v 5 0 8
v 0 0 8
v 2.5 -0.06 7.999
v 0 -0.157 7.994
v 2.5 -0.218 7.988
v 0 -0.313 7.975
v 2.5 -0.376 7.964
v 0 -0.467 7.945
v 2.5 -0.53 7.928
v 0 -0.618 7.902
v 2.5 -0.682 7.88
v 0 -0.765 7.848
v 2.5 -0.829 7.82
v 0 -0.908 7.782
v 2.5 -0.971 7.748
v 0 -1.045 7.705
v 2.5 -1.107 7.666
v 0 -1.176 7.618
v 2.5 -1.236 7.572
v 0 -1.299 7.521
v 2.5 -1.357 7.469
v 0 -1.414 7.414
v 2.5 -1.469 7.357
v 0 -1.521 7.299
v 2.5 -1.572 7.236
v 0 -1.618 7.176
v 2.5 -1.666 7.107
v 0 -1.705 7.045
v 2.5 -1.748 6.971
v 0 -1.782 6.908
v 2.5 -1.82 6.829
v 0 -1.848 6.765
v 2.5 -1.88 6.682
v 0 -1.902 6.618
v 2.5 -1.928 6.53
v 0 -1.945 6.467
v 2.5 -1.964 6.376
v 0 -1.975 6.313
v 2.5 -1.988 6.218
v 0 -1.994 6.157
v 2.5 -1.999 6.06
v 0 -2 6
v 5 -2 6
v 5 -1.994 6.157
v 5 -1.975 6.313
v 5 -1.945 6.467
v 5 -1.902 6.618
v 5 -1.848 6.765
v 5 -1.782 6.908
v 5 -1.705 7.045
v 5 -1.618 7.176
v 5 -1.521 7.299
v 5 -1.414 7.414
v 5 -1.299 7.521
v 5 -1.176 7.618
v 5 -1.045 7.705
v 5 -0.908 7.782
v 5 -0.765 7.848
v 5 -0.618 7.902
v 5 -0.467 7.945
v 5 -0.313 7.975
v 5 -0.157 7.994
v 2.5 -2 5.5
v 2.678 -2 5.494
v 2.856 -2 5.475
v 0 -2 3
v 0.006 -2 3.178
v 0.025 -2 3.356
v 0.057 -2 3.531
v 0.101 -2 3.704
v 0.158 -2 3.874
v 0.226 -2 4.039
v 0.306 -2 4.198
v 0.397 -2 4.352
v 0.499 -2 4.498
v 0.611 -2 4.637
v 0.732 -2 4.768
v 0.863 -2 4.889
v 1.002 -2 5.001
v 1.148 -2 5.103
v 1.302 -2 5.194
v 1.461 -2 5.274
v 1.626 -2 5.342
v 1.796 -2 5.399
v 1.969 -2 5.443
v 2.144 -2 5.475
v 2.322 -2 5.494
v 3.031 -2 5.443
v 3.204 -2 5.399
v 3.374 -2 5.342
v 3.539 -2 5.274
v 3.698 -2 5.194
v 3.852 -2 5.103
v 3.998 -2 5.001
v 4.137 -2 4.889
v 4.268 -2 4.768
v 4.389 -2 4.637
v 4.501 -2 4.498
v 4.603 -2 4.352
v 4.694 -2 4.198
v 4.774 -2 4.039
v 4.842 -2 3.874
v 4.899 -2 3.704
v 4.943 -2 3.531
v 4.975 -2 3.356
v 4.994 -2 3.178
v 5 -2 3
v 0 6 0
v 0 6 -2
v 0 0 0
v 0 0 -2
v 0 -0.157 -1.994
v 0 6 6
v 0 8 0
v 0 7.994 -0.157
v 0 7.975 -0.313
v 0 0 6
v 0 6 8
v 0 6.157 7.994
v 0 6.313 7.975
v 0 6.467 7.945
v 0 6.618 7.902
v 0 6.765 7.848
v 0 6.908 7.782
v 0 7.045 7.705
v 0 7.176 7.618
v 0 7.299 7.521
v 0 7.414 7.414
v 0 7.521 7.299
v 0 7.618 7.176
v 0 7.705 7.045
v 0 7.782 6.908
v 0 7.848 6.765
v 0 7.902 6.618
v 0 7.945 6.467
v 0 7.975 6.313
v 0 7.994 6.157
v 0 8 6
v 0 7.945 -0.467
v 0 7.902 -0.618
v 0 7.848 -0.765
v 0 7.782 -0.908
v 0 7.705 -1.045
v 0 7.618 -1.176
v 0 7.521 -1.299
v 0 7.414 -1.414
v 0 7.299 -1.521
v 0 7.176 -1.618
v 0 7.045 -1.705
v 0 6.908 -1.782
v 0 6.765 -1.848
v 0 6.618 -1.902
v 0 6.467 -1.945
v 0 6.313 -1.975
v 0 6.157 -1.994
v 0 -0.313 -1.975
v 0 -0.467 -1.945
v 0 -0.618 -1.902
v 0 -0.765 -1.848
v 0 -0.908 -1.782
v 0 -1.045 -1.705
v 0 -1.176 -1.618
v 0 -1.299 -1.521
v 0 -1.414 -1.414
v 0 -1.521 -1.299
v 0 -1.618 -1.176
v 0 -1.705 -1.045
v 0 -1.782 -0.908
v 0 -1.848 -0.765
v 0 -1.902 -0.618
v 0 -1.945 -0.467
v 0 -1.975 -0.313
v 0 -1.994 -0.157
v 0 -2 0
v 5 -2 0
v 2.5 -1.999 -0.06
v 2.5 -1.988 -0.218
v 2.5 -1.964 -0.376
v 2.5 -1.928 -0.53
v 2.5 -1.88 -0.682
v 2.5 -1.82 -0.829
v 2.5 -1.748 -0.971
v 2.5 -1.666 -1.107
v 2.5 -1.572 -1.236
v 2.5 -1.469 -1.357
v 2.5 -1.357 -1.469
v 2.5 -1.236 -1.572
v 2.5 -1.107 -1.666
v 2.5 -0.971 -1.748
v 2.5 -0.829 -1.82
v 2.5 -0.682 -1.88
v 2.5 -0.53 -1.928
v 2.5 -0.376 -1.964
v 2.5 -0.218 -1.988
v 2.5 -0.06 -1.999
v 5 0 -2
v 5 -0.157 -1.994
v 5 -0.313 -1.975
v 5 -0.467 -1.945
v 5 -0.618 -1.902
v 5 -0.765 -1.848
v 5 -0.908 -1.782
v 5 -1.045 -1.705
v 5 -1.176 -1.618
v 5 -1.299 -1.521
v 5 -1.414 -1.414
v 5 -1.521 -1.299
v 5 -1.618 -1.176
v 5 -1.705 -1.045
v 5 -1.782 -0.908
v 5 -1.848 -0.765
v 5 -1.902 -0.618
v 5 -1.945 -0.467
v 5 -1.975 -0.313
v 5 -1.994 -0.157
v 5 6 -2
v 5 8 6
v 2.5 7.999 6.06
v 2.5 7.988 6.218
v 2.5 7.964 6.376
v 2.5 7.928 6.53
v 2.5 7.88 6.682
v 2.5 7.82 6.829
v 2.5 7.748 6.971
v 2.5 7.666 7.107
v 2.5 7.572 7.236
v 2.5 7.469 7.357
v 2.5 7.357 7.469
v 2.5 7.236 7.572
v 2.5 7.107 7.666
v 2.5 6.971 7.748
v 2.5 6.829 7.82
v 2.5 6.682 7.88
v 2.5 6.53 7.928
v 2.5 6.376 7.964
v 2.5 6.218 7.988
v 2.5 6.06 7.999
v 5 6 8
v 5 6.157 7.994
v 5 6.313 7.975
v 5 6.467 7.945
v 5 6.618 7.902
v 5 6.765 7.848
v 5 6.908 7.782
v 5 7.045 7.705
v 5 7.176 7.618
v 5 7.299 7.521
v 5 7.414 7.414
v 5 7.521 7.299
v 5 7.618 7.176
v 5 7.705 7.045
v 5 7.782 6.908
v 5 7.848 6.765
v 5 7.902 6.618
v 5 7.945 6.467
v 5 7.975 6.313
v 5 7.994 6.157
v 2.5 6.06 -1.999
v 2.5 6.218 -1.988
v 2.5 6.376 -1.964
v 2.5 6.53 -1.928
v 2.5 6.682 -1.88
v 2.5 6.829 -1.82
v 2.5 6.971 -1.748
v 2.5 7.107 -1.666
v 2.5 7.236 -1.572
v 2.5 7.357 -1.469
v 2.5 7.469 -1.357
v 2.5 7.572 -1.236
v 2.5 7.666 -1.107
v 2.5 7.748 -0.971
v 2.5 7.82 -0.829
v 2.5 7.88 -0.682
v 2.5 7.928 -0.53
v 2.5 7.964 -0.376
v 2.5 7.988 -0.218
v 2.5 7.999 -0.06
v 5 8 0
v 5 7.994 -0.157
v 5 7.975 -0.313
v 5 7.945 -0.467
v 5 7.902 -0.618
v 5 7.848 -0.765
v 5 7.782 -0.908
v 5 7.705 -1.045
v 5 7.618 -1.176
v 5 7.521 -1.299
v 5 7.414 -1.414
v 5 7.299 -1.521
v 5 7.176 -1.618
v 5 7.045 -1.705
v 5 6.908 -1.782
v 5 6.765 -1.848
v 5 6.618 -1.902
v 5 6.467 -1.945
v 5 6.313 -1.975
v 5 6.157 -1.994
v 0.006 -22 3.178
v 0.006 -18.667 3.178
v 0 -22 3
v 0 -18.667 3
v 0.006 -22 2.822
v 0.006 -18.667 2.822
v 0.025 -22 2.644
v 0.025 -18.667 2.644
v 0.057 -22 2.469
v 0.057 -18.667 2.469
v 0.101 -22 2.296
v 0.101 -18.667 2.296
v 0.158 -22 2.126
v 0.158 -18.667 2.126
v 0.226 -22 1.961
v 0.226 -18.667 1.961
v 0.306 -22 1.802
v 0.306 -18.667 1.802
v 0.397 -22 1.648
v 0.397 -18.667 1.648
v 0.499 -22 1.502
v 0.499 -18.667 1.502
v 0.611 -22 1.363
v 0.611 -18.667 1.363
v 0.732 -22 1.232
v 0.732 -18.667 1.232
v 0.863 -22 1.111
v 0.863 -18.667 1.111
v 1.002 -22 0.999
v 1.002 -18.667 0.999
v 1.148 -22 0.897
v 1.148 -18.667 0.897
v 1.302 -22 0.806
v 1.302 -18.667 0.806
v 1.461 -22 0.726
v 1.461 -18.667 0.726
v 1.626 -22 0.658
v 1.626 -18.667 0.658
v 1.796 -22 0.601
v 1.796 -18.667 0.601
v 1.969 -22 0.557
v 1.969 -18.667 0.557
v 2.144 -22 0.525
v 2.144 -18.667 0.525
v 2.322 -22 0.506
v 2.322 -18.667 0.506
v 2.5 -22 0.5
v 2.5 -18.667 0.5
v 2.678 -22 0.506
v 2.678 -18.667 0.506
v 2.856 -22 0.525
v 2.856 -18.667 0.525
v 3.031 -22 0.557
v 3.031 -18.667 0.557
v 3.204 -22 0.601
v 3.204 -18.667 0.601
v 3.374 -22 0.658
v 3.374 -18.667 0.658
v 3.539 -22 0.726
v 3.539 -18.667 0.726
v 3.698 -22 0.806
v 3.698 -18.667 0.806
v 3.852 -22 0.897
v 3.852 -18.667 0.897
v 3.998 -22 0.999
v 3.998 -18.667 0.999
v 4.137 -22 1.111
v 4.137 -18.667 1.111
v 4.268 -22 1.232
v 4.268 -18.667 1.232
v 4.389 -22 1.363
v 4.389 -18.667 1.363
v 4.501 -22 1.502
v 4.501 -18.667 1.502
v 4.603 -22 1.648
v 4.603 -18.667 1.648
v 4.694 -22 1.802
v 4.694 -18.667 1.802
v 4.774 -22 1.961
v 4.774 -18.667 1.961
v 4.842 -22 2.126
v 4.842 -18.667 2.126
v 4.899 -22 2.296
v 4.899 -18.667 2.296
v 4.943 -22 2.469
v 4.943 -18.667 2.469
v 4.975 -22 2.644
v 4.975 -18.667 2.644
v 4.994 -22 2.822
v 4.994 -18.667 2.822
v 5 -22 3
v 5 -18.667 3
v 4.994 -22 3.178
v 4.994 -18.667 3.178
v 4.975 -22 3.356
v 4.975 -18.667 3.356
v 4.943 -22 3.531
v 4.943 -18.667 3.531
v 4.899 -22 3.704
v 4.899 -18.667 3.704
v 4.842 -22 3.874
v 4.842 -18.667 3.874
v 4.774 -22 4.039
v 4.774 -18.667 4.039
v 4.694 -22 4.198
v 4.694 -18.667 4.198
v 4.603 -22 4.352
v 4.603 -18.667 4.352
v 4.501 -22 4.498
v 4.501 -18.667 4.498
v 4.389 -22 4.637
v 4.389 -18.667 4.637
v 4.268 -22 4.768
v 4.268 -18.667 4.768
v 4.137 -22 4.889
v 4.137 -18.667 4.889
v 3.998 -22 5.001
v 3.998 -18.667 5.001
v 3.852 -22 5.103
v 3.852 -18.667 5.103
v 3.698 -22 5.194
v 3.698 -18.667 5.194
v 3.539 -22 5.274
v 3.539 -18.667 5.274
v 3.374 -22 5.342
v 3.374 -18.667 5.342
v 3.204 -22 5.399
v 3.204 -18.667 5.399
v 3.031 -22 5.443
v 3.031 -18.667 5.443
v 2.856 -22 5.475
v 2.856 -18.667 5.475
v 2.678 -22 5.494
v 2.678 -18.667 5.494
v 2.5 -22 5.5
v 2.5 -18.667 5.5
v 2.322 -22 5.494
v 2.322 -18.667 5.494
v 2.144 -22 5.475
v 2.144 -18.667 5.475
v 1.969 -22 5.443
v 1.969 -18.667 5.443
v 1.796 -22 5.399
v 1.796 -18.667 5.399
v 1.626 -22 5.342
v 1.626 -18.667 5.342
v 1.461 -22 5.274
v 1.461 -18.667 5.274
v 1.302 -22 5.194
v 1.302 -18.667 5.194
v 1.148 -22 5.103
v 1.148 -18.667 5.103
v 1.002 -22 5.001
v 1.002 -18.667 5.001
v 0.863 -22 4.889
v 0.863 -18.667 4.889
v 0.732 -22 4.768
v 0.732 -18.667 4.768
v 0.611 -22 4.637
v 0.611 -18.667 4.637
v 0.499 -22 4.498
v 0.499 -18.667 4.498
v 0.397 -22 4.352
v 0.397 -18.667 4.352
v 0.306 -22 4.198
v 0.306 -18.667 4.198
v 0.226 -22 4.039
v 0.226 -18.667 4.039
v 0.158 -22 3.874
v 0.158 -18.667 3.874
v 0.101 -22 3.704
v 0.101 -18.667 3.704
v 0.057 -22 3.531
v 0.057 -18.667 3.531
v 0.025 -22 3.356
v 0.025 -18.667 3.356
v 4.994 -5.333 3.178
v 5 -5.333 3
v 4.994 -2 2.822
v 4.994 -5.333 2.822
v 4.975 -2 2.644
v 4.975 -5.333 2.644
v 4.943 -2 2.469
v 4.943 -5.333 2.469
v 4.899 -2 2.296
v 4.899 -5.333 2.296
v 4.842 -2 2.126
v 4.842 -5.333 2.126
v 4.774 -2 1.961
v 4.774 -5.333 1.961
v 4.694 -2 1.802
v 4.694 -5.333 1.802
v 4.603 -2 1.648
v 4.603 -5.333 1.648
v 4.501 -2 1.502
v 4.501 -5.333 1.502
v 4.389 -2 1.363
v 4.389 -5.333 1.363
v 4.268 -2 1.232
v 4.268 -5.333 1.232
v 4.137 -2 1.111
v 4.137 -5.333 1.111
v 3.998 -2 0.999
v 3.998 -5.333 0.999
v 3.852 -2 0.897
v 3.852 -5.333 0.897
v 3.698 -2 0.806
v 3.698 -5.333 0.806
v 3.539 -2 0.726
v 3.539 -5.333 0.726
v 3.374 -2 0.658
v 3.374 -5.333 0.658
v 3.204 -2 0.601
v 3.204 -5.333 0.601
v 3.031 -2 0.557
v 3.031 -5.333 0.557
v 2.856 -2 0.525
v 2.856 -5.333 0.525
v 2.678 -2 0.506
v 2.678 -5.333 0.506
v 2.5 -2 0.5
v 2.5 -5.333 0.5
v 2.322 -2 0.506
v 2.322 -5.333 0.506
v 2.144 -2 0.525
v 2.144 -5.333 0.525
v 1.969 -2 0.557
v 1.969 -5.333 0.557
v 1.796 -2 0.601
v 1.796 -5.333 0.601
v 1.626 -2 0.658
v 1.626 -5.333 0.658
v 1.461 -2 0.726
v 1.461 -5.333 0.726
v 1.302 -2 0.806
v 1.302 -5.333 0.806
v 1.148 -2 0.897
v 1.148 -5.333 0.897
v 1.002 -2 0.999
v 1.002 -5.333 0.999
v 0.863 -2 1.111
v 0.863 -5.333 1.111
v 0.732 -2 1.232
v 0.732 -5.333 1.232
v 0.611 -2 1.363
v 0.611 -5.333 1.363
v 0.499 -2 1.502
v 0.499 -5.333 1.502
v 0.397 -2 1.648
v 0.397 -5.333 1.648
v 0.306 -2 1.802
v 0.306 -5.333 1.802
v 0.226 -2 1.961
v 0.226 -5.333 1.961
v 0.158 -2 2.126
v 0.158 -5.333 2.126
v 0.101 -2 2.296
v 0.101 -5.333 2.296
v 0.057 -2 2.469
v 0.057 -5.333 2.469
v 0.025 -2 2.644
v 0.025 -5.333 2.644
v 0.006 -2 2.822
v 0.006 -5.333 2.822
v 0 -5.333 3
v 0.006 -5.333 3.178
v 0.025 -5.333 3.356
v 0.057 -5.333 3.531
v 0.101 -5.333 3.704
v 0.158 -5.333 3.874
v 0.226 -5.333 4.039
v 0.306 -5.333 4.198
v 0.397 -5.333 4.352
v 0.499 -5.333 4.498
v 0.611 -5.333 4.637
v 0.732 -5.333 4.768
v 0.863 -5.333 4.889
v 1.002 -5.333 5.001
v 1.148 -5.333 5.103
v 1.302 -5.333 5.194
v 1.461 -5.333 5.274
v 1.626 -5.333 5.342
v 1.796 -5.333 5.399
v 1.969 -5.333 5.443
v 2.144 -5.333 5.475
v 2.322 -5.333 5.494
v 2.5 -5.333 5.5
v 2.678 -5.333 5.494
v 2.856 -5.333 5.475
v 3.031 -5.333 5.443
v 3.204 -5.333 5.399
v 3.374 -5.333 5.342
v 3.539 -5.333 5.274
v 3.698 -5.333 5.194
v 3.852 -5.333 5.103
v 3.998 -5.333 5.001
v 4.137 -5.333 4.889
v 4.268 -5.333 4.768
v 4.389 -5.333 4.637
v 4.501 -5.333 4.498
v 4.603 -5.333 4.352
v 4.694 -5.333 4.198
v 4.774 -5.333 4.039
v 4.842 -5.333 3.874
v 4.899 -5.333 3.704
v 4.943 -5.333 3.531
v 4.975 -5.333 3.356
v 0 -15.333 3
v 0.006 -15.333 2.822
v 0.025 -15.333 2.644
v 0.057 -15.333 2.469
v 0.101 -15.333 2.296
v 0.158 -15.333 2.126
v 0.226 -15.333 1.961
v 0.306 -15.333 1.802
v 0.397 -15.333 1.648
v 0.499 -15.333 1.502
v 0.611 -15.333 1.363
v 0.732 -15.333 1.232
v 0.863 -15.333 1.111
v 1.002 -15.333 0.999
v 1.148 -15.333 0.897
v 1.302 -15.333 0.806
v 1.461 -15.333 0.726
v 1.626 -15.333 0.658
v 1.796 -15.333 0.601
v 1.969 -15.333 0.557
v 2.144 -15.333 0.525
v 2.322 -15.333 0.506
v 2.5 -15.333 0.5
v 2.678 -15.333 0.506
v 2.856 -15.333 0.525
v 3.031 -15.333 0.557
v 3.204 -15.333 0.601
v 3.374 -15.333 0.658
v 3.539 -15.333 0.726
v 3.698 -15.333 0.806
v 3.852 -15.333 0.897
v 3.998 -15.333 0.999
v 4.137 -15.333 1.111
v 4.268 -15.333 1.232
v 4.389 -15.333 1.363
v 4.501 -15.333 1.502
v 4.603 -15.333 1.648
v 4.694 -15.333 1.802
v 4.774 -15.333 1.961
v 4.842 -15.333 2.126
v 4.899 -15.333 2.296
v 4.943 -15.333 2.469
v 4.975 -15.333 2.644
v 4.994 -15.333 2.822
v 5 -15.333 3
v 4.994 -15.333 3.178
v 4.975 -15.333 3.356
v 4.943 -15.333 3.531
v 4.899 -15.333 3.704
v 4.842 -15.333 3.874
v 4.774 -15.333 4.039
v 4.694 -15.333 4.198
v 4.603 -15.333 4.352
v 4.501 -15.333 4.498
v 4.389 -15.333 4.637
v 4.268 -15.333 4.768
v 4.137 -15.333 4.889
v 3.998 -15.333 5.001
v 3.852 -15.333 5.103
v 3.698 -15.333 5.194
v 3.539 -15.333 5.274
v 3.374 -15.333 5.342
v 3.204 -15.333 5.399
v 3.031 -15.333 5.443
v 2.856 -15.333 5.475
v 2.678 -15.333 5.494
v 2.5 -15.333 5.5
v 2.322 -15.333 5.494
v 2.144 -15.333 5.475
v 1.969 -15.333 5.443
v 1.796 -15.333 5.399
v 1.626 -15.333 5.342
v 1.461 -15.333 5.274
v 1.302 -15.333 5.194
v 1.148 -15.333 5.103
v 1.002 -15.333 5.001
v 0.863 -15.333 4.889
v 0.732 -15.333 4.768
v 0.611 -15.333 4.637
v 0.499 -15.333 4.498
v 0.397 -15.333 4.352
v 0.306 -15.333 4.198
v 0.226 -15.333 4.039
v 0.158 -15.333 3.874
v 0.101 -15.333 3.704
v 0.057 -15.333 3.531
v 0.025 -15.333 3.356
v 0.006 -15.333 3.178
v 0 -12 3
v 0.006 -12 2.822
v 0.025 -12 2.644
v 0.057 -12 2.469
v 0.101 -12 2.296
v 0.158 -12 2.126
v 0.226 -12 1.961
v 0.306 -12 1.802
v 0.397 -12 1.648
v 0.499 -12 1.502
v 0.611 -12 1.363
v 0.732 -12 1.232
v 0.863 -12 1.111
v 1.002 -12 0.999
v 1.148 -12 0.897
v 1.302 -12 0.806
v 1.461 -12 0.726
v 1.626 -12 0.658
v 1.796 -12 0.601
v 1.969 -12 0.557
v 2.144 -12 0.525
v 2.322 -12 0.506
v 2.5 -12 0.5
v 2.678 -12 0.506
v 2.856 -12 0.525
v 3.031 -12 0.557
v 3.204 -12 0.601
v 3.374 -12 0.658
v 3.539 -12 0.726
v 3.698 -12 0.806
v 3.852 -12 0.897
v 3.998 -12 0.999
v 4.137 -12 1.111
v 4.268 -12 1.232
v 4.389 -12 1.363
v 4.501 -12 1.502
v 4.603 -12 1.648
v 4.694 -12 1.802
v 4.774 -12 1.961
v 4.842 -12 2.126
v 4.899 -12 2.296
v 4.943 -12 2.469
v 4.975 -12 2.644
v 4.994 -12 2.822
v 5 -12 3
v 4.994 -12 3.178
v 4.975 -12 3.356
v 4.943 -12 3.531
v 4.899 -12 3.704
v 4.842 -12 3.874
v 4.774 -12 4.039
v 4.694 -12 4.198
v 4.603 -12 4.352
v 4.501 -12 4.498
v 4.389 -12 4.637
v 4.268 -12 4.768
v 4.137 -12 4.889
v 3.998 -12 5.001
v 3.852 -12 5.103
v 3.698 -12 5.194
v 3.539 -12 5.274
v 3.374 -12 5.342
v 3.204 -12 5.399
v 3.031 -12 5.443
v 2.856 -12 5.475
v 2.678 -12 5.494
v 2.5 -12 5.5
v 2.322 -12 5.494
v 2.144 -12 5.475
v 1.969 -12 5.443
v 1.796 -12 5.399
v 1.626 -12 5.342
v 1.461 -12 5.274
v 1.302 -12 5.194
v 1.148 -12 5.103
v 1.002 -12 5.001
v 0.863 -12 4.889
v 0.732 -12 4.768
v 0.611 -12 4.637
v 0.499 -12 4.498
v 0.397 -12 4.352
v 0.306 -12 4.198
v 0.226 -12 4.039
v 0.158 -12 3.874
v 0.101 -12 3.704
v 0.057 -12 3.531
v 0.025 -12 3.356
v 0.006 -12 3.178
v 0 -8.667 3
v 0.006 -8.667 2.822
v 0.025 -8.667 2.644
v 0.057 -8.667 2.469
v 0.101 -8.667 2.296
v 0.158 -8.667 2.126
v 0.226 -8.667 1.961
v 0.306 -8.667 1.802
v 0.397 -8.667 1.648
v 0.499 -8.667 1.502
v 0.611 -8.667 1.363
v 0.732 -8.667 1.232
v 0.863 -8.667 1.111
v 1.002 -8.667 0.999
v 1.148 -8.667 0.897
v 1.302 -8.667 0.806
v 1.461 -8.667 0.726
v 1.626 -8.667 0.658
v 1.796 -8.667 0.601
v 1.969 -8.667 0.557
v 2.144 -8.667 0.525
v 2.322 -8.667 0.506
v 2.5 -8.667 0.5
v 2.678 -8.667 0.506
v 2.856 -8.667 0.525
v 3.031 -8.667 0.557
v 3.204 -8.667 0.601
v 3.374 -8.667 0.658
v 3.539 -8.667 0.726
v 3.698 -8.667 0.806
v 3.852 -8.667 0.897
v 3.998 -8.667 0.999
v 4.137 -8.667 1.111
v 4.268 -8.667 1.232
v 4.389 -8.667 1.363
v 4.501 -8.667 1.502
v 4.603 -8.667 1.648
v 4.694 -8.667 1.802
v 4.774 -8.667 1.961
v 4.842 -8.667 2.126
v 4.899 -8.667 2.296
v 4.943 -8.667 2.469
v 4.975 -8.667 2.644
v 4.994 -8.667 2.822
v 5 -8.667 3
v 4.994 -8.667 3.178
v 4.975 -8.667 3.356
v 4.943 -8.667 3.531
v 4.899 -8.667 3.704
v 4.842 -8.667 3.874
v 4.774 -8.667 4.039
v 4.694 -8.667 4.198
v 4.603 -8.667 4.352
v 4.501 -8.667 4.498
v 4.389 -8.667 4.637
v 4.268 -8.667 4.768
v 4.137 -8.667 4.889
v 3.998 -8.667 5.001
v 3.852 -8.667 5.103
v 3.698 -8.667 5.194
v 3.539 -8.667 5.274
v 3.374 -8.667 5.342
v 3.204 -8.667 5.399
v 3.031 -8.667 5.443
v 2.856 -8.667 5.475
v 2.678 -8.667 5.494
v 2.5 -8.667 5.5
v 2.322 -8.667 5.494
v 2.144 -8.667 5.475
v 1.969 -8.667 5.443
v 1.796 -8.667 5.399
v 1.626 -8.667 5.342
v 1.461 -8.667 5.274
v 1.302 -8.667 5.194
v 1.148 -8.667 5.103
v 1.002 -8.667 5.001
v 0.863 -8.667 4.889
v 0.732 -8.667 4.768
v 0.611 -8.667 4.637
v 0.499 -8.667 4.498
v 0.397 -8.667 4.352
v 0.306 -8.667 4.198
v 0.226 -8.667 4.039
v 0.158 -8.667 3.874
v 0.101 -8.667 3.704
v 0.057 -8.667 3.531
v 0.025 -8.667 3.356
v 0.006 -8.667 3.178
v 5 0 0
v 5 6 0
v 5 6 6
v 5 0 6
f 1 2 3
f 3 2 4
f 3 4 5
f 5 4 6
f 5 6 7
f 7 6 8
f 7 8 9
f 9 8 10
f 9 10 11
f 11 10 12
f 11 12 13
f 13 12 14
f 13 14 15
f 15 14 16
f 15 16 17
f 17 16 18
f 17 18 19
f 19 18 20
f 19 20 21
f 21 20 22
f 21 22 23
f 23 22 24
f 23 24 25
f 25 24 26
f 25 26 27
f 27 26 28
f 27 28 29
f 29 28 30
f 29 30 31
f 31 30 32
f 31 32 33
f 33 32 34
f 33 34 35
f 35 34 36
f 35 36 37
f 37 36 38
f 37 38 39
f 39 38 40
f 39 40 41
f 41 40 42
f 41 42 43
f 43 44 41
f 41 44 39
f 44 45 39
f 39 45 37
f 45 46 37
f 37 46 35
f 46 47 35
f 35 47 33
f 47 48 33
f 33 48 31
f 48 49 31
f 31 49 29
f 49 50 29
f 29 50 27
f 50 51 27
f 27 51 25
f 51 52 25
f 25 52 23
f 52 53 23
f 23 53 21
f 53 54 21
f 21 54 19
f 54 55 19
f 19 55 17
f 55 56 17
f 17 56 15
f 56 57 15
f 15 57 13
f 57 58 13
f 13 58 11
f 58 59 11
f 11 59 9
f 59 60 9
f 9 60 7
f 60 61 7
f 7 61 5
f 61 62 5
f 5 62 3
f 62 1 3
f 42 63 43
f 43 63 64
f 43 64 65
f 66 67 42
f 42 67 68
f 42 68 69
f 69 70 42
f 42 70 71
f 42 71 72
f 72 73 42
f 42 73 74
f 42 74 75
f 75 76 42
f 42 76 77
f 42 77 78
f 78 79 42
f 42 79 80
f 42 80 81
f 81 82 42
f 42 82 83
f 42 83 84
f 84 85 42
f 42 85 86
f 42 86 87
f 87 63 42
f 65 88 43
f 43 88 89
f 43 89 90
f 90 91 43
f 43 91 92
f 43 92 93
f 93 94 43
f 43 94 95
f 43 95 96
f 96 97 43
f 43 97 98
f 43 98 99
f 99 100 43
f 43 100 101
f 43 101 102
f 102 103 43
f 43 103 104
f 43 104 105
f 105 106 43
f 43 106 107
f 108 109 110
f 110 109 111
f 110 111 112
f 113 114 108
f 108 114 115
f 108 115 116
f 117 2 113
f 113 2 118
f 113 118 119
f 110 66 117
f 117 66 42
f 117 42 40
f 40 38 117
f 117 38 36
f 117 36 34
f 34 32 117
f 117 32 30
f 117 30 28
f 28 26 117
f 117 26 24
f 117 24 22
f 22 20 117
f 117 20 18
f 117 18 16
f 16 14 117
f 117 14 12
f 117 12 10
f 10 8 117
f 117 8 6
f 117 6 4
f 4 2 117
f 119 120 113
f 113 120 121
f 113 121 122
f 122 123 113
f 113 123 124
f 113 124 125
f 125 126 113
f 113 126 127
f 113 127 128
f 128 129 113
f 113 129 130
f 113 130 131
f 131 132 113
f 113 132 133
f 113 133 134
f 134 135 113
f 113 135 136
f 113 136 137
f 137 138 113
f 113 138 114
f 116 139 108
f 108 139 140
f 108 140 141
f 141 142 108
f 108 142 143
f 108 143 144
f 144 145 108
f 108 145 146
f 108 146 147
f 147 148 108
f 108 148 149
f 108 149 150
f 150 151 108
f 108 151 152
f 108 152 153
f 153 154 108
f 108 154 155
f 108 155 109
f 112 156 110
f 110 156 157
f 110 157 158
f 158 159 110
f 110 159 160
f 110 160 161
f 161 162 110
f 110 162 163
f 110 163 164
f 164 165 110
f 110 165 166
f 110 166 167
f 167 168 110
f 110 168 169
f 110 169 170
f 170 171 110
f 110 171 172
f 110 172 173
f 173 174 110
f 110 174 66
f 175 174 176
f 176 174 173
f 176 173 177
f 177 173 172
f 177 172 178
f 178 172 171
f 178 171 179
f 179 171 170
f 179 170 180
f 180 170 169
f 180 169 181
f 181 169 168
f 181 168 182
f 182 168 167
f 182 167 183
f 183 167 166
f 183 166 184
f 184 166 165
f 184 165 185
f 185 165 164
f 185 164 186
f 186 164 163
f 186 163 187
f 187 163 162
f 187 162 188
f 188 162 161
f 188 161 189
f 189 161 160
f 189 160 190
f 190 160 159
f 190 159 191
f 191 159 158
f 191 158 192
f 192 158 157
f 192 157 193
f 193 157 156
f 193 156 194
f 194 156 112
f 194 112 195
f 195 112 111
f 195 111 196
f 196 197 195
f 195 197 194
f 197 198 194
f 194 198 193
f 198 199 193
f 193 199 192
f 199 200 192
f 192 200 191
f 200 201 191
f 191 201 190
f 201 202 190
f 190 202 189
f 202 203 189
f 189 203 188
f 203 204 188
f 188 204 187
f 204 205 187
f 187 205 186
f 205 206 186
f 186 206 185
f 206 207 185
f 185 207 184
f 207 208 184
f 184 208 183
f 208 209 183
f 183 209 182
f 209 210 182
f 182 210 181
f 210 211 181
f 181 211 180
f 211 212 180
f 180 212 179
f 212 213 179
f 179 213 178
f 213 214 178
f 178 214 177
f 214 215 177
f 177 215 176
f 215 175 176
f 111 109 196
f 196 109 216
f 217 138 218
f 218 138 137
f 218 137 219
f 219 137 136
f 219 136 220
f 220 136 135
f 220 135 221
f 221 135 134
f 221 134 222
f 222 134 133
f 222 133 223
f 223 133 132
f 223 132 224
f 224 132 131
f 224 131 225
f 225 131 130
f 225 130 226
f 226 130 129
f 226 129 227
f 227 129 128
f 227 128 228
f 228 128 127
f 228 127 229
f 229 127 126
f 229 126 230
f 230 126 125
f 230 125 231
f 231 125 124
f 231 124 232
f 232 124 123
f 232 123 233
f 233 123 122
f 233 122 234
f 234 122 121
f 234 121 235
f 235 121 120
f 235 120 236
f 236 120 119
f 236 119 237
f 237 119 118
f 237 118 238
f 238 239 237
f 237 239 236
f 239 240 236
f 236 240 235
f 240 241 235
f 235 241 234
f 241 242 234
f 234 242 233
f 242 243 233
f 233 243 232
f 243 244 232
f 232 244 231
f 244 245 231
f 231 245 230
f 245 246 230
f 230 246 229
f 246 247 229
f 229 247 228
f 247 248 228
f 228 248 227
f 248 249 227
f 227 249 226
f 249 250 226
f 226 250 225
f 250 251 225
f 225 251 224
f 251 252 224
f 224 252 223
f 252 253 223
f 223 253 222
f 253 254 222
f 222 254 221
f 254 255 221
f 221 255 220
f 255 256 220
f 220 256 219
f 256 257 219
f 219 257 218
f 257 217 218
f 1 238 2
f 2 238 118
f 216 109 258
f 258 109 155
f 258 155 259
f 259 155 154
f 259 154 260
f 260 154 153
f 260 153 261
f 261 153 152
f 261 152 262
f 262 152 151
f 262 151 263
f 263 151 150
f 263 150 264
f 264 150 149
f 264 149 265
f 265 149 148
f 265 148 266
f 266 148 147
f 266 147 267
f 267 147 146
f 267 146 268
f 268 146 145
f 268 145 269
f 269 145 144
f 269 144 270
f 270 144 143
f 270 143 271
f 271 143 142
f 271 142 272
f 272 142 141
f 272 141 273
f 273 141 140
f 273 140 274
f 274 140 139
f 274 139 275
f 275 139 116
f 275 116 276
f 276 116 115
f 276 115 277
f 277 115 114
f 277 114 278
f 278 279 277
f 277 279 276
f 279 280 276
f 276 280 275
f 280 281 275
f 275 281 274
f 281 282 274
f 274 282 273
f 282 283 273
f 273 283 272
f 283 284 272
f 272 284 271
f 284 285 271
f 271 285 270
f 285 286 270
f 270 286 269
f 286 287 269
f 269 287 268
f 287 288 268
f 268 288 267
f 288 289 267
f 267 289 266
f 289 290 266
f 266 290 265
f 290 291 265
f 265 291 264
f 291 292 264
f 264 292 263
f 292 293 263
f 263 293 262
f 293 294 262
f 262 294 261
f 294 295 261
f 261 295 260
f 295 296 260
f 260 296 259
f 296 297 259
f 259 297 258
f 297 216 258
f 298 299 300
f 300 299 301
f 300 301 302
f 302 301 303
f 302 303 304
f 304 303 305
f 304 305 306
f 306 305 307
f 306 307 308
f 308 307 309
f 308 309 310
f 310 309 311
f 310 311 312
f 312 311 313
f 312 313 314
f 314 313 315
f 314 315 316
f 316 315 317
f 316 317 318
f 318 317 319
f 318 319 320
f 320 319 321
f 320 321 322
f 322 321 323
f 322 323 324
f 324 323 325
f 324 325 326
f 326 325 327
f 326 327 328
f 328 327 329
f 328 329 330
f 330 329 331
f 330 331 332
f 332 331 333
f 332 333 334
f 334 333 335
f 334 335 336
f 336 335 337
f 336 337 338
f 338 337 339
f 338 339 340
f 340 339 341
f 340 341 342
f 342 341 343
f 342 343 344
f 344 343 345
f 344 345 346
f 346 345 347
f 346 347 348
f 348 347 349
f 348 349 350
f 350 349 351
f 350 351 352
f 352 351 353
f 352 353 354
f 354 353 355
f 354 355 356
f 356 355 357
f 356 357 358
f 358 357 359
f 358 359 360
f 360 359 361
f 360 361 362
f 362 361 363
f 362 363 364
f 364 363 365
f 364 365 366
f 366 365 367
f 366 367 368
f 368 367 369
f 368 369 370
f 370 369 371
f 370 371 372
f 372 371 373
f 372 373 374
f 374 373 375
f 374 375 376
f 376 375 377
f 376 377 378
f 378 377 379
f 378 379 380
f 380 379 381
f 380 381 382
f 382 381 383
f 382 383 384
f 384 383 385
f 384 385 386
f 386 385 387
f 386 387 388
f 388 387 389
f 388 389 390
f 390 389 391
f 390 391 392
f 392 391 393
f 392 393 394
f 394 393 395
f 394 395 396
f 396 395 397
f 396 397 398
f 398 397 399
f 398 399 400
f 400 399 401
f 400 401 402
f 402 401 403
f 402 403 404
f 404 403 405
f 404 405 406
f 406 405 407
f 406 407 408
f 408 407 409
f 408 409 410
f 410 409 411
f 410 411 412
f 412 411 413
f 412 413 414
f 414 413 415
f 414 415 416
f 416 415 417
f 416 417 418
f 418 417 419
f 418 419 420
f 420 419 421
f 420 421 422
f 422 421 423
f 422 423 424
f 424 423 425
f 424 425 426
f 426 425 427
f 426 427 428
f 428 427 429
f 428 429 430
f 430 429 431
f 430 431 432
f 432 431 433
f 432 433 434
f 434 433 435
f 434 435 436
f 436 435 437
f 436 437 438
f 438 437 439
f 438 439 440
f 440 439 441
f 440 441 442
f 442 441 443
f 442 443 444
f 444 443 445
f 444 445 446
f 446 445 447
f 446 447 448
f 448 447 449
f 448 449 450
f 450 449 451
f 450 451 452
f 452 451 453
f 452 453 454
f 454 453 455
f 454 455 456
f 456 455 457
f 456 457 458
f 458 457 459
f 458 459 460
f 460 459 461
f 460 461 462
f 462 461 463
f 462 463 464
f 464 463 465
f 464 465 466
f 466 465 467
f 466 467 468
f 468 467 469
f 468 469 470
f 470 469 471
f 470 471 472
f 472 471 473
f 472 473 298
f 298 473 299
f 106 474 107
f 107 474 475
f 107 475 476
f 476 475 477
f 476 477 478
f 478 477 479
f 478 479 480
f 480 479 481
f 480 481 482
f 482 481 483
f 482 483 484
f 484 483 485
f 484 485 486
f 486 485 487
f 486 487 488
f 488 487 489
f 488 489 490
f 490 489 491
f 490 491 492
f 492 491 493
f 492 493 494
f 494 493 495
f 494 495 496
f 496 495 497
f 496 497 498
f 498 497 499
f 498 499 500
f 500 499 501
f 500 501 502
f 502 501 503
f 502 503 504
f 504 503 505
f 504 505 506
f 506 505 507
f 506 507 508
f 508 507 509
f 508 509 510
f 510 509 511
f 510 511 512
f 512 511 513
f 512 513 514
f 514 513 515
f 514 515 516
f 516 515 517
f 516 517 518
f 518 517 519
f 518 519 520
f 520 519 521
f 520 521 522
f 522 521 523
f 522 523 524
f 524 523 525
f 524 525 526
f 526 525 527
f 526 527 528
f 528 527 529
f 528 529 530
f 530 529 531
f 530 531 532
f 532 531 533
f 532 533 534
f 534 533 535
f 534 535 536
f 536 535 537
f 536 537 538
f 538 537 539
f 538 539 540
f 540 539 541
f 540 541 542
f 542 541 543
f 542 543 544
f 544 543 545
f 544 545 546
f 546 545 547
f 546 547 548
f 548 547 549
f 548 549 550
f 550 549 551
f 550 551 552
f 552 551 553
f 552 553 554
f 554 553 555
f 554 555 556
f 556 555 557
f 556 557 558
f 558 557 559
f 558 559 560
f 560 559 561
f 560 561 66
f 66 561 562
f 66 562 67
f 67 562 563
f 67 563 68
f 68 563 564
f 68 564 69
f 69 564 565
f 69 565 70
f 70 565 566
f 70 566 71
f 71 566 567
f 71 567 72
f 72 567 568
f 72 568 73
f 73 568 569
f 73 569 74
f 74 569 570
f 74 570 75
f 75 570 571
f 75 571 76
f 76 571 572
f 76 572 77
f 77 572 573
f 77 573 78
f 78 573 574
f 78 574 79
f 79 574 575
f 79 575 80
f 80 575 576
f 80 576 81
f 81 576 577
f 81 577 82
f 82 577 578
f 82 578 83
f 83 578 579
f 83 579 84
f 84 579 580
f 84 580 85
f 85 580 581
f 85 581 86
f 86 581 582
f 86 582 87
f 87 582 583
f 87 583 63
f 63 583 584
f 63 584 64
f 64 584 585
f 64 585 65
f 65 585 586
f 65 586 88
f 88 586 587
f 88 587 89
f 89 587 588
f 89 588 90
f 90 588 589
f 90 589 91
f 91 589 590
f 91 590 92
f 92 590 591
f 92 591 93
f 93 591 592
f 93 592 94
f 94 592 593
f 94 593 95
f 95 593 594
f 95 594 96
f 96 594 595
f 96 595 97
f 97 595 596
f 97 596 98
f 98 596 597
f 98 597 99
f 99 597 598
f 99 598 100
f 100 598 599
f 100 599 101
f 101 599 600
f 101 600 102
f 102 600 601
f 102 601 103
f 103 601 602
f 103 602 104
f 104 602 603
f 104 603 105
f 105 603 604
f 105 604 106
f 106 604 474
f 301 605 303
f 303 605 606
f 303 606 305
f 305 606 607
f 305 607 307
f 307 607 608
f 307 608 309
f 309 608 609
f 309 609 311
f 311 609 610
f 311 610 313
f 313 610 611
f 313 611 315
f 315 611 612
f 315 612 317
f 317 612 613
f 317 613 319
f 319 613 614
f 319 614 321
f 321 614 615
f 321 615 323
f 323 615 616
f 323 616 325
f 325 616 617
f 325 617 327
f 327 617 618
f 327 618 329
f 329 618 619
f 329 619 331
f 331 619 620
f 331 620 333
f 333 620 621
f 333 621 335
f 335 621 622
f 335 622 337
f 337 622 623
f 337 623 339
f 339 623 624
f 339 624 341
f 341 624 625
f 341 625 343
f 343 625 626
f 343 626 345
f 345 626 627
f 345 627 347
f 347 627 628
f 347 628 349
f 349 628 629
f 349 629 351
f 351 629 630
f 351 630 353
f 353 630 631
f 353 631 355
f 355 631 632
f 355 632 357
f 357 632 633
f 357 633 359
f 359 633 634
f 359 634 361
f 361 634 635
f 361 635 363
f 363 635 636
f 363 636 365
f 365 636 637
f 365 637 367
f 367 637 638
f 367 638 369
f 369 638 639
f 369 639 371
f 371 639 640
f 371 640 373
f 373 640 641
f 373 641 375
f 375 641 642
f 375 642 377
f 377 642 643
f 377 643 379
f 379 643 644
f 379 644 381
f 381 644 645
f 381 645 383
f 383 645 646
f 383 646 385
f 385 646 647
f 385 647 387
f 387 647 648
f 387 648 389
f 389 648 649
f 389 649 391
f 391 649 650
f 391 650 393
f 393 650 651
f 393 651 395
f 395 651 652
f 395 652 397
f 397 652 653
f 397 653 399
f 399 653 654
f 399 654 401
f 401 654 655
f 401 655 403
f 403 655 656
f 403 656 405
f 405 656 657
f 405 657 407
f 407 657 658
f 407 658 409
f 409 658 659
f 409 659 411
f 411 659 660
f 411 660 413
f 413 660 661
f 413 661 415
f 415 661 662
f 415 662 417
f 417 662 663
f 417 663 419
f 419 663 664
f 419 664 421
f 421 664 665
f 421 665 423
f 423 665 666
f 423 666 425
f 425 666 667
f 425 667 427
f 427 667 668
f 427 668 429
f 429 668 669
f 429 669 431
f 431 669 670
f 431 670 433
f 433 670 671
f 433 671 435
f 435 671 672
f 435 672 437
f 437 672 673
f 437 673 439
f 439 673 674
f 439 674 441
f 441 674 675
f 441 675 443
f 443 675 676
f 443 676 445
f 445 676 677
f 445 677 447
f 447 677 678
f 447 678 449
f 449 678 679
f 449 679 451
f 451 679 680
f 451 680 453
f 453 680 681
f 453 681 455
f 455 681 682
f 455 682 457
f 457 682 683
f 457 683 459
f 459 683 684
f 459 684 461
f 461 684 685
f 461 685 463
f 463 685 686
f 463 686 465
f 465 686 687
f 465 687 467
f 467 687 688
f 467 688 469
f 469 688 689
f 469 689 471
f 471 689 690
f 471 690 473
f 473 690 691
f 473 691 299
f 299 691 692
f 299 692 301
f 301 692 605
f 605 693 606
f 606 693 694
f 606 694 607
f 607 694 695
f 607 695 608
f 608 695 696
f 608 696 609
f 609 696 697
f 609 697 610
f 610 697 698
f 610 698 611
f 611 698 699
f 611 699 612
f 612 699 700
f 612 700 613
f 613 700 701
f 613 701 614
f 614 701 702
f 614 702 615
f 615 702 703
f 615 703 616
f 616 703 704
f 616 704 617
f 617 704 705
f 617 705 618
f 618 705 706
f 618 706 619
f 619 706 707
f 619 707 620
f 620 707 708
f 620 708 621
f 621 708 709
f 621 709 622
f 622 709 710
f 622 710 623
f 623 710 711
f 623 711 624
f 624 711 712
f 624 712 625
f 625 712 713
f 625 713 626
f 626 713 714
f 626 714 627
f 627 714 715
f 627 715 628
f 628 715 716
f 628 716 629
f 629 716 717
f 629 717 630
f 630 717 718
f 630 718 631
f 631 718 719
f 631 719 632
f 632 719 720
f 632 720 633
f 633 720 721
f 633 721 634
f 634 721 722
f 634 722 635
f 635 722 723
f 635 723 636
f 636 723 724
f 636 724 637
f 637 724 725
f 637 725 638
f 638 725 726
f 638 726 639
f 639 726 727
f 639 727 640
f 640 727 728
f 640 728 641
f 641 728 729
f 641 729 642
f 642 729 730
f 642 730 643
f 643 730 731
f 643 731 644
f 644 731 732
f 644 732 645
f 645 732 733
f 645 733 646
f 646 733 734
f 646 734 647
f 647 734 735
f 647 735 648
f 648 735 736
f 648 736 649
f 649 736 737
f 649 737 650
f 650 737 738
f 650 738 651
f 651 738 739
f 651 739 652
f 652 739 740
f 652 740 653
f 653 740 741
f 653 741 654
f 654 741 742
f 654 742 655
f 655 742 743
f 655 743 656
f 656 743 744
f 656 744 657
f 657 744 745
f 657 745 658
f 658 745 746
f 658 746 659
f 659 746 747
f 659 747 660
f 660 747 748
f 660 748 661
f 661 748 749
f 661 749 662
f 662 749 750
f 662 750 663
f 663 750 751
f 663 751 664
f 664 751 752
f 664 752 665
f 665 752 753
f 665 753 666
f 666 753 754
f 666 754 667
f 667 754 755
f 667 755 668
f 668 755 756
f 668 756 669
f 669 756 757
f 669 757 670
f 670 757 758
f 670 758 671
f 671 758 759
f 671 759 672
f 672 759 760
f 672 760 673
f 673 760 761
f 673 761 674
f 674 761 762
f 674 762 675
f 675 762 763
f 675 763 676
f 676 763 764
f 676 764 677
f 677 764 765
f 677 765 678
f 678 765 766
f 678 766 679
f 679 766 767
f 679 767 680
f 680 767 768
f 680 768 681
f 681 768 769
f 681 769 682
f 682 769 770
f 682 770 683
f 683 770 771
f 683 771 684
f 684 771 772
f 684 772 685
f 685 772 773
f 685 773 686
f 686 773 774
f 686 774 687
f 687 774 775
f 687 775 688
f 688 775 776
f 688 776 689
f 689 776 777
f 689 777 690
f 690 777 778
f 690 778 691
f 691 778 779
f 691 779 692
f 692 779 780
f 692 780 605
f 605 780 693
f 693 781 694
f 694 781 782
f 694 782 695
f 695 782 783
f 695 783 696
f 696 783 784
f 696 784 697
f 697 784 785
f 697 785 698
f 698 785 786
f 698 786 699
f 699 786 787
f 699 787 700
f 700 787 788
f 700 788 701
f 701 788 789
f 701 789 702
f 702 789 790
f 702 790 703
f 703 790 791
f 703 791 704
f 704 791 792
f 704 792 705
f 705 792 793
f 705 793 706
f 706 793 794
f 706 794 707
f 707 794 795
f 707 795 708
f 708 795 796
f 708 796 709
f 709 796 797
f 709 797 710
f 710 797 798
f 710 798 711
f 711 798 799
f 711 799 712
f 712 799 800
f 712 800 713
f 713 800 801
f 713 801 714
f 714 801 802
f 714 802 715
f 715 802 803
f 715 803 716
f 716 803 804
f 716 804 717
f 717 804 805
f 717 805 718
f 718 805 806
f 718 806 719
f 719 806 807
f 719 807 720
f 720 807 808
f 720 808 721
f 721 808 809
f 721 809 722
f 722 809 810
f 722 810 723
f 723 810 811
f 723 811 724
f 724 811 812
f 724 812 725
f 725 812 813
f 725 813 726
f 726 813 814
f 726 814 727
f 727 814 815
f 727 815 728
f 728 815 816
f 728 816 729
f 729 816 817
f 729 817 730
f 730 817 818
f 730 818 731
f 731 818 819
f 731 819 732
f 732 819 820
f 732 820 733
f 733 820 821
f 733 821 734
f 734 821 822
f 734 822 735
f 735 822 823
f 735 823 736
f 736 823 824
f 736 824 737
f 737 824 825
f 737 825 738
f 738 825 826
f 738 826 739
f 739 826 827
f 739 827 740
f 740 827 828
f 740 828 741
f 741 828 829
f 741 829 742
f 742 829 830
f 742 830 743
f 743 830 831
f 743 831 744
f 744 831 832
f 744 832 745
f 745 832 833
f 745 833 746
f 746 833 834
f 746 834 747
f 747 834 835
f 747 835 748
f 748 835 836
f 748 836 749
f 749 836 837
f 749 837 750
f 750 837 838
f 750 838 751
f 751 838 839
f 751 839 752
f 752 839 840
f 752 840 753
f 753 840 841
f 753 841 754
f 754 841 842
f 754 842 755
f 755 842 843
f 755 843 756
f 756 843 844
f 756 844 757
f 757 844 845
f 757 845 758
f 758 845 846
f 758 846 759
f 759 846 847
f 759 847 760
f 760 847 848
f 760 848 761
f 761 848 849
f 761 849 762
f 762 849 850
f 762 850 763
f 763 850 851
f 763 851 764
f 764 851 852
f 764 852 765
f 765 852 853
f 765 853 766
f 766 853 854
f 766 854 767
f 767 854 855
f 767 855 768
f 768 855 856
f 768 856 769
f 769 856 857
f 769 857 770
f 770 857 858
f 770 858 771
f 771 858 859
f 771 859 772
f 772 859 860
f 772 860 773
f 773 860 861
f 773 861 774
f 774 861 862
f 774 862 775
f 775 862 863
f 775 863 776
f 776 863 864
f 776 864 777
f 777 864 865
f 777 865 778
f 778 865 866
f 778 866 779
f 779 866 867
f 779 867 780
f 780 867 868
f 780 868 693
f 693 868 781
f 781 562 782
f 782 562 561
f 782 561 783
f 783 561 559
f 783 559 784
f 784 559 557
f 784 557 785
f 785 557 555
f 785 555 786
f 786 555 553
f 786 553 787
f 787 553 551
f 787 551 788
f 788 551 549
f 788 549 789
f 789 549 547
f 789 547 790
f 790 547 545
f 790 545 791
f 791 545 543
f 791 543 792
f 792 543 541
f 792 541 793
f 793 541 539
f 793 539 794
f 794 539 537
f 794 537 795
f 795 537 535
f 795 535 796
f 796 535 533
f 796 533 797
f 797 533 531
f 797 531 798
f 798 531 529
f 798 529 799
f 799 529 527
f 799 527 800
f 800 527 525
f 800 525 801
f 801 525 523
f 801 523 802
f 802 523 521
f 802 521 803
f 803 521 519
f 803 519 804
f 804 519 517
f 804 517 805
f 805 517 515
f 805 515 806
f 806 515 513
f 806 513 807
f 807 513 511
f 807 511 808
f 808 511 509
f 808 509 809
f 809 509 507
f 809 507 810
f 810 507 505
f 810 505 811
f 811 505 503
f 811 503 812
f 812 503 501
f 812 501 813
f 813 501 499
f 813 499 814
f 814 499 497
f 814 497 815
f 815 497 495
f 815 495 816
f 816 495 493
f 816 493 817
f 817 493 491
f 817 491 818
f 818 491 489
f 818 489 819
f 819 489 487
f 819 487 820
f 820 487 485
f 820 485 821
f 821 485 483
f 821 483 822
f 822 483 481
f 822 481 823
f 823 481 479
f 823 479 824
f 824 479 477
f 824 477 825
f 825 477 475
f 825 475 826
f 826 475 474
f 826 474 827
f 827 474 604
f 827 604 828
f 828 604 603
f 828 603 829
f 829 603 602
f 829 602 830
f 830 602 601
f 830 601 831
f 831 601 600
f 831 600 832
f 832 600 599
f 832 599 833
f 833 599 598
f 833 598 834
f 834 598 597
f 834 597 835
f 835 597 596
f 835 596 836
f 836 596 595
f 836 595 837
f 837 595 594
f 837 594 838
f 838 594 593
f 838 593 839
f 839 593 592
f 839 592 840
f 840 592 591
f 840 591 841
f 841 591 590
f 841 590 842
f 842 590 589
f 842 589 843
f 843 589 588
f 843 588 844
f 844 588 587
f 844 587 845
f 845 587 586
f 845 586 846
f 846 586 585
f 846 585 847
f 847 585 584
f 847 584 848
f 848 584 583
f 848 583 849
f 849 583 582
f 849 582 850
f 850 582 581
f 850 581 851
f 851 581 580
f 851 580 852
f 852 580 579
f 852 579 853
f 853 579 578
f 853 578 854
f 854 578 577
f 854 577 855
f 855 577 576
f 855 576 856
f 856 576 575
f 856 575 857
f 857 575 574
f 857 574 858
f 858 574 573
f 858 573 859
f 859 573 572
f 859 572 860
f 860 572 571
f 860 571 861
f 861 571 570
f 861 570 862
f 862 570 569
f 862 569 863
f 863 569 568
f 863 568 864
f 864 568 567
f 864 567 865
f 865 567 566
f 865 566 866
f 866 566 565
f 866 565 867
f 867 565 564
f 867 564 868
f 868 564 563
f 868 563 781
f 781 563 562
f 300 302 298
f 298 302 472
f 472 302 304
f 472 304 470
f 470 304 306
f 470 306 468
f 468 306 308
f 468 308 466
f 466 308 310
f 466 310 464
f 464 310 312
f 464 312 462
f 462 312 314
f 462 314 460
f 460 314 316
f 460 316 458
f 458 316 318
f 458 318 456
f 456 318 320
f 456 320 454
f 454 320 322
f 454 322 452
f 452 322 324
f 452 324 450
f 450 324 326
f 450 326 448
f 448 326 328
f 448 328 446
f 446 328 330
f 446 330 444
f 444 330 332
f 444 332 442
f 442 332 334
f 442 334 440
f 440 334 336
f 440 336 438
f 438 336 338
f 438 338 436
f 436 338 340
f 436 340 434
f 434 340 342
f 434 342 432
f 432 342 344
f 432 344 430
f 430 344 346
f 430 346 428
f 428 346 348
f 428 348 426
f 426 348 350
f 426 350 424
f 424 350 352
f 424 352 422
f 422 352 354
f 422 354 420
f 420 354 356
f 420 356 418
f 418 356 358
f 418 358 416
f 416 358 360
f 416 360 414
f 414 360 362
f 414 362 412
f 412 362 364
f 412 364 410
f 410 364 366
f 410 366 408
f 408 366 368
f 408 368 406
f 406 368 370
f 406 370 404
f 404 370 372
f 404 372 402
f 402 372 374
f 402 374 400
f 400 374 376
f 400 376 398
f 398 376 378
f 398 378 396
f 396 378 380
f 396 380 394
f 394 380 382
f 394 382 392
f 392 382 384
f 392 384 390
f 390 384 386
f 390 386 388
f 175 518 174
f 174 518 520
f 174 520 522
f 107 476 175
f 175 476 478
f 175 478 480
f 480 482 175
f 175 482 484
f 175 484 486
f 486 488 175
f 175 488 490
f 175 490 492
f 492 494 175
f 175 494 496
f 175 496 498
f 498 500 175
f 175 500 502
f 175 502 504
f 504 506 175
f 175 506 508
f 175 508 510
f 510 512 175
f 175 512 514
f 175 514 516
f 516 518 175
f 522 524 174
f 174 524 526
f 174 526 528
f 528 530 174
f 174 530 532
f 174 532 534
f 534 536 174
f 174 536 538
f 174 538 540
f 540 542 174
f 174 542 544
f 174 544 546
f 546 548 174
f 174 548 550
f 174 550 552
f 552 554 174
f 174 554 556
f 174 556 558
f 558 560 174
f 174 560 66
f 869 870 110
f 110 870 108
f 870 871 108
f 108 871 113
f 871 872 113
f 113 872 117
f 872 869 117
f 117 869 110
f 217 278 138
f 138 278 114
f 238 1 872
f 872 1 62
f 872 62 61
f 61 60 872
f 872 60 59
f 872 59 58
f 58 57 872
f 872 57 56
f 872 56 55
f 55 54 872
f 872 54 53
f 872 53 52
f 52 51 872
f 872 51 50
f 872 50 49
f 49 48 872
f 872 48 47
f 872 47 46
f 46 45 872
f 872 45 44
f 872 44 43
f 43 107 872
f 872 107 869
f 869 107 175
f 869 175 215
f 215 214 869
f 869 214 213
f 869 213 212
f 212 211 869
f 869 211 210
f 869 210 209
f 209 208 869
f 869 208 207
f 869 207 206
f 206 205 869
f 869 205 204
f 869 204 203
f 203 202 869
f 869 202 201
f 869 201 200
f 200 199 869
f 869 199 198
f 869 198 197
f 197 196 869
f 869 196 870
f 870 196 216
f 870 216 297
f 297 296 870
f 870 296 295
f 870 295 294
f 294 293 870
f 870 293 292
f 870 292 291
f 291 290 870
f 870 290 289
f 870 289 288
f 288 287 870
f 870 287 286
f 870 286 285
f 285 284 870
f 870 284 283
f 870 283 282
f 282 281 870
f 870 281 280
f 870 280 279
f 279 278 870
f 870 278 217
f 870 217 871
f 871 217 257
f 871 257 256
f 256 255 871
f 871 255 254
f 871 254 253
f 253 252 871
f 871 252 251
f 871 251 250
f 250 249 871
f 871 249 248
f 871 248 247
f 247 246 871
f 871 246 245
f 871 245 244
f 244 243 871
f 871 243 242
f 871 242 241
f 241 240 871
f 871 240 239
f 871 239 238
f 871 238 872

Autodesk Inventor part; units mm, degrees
ref_plane "YZ Plane" through (0, 0, 0) normal (1, 0, 0) x (0, 1, 0)
ref_plane "XZ Plane" through (0, 0, 0) normal (0, 1, 0) x (-1, 0, 0)
ref_plane "XY Plane" through (0, 0, 0) normal (0, 0, 1) x (1, 0, 0)
sketch "Sketch1" plane through (0, 0, 0) normal (1, 0, 0) x (0, 1, 0)
  line L0 (6, 6) -> (0, 6)
  line L1 (0, 6) -> (0, 0)
  line L2 (0, 0) -> (6, 0)
  line L3 (6, 0) -> (6, 6)
  line L4 (-2, 8) -> (8, 8)
  line L5 (8, 8) -> (8, -2)
  line L6 (8, -2) -> (-2, -2)
  line L7 (-2, -2) -> (-2, 8)
  dimension "d0" = 6
  dimension "d1" = 6
  dimension "d2" = 2
  dimension "d3" = 10
  dimension "d4" = 10
  dimension "d5" = 2
extrude "Extrusion1" add sketch "Sketch1" along normal blind 5
sketch "Sketch2" plane through (0, -2, -2) normal (0, -1, 0) x (1, 0, 0)
  circle A0 centre (2.5, 5) radius 2.5
  line L0 (0, 10) -> (5, 10) projected
  line L1 (5, 10) -> (5, 0) projected
  point P0 (0, 2)
  dimension "d8" = 5
  dimension "d9" = 5
  dimension "d10" = 2.5
extrude "Extrusion2" add sketch "Sketch2" along normal blind 20
fillet "Fillet1" radius 2 4 edges at (2.5, 8, 8) (2.5, 8, -2) (2.5, -2, 8) (2.5, -2, -2)
properties part number "roka2"
